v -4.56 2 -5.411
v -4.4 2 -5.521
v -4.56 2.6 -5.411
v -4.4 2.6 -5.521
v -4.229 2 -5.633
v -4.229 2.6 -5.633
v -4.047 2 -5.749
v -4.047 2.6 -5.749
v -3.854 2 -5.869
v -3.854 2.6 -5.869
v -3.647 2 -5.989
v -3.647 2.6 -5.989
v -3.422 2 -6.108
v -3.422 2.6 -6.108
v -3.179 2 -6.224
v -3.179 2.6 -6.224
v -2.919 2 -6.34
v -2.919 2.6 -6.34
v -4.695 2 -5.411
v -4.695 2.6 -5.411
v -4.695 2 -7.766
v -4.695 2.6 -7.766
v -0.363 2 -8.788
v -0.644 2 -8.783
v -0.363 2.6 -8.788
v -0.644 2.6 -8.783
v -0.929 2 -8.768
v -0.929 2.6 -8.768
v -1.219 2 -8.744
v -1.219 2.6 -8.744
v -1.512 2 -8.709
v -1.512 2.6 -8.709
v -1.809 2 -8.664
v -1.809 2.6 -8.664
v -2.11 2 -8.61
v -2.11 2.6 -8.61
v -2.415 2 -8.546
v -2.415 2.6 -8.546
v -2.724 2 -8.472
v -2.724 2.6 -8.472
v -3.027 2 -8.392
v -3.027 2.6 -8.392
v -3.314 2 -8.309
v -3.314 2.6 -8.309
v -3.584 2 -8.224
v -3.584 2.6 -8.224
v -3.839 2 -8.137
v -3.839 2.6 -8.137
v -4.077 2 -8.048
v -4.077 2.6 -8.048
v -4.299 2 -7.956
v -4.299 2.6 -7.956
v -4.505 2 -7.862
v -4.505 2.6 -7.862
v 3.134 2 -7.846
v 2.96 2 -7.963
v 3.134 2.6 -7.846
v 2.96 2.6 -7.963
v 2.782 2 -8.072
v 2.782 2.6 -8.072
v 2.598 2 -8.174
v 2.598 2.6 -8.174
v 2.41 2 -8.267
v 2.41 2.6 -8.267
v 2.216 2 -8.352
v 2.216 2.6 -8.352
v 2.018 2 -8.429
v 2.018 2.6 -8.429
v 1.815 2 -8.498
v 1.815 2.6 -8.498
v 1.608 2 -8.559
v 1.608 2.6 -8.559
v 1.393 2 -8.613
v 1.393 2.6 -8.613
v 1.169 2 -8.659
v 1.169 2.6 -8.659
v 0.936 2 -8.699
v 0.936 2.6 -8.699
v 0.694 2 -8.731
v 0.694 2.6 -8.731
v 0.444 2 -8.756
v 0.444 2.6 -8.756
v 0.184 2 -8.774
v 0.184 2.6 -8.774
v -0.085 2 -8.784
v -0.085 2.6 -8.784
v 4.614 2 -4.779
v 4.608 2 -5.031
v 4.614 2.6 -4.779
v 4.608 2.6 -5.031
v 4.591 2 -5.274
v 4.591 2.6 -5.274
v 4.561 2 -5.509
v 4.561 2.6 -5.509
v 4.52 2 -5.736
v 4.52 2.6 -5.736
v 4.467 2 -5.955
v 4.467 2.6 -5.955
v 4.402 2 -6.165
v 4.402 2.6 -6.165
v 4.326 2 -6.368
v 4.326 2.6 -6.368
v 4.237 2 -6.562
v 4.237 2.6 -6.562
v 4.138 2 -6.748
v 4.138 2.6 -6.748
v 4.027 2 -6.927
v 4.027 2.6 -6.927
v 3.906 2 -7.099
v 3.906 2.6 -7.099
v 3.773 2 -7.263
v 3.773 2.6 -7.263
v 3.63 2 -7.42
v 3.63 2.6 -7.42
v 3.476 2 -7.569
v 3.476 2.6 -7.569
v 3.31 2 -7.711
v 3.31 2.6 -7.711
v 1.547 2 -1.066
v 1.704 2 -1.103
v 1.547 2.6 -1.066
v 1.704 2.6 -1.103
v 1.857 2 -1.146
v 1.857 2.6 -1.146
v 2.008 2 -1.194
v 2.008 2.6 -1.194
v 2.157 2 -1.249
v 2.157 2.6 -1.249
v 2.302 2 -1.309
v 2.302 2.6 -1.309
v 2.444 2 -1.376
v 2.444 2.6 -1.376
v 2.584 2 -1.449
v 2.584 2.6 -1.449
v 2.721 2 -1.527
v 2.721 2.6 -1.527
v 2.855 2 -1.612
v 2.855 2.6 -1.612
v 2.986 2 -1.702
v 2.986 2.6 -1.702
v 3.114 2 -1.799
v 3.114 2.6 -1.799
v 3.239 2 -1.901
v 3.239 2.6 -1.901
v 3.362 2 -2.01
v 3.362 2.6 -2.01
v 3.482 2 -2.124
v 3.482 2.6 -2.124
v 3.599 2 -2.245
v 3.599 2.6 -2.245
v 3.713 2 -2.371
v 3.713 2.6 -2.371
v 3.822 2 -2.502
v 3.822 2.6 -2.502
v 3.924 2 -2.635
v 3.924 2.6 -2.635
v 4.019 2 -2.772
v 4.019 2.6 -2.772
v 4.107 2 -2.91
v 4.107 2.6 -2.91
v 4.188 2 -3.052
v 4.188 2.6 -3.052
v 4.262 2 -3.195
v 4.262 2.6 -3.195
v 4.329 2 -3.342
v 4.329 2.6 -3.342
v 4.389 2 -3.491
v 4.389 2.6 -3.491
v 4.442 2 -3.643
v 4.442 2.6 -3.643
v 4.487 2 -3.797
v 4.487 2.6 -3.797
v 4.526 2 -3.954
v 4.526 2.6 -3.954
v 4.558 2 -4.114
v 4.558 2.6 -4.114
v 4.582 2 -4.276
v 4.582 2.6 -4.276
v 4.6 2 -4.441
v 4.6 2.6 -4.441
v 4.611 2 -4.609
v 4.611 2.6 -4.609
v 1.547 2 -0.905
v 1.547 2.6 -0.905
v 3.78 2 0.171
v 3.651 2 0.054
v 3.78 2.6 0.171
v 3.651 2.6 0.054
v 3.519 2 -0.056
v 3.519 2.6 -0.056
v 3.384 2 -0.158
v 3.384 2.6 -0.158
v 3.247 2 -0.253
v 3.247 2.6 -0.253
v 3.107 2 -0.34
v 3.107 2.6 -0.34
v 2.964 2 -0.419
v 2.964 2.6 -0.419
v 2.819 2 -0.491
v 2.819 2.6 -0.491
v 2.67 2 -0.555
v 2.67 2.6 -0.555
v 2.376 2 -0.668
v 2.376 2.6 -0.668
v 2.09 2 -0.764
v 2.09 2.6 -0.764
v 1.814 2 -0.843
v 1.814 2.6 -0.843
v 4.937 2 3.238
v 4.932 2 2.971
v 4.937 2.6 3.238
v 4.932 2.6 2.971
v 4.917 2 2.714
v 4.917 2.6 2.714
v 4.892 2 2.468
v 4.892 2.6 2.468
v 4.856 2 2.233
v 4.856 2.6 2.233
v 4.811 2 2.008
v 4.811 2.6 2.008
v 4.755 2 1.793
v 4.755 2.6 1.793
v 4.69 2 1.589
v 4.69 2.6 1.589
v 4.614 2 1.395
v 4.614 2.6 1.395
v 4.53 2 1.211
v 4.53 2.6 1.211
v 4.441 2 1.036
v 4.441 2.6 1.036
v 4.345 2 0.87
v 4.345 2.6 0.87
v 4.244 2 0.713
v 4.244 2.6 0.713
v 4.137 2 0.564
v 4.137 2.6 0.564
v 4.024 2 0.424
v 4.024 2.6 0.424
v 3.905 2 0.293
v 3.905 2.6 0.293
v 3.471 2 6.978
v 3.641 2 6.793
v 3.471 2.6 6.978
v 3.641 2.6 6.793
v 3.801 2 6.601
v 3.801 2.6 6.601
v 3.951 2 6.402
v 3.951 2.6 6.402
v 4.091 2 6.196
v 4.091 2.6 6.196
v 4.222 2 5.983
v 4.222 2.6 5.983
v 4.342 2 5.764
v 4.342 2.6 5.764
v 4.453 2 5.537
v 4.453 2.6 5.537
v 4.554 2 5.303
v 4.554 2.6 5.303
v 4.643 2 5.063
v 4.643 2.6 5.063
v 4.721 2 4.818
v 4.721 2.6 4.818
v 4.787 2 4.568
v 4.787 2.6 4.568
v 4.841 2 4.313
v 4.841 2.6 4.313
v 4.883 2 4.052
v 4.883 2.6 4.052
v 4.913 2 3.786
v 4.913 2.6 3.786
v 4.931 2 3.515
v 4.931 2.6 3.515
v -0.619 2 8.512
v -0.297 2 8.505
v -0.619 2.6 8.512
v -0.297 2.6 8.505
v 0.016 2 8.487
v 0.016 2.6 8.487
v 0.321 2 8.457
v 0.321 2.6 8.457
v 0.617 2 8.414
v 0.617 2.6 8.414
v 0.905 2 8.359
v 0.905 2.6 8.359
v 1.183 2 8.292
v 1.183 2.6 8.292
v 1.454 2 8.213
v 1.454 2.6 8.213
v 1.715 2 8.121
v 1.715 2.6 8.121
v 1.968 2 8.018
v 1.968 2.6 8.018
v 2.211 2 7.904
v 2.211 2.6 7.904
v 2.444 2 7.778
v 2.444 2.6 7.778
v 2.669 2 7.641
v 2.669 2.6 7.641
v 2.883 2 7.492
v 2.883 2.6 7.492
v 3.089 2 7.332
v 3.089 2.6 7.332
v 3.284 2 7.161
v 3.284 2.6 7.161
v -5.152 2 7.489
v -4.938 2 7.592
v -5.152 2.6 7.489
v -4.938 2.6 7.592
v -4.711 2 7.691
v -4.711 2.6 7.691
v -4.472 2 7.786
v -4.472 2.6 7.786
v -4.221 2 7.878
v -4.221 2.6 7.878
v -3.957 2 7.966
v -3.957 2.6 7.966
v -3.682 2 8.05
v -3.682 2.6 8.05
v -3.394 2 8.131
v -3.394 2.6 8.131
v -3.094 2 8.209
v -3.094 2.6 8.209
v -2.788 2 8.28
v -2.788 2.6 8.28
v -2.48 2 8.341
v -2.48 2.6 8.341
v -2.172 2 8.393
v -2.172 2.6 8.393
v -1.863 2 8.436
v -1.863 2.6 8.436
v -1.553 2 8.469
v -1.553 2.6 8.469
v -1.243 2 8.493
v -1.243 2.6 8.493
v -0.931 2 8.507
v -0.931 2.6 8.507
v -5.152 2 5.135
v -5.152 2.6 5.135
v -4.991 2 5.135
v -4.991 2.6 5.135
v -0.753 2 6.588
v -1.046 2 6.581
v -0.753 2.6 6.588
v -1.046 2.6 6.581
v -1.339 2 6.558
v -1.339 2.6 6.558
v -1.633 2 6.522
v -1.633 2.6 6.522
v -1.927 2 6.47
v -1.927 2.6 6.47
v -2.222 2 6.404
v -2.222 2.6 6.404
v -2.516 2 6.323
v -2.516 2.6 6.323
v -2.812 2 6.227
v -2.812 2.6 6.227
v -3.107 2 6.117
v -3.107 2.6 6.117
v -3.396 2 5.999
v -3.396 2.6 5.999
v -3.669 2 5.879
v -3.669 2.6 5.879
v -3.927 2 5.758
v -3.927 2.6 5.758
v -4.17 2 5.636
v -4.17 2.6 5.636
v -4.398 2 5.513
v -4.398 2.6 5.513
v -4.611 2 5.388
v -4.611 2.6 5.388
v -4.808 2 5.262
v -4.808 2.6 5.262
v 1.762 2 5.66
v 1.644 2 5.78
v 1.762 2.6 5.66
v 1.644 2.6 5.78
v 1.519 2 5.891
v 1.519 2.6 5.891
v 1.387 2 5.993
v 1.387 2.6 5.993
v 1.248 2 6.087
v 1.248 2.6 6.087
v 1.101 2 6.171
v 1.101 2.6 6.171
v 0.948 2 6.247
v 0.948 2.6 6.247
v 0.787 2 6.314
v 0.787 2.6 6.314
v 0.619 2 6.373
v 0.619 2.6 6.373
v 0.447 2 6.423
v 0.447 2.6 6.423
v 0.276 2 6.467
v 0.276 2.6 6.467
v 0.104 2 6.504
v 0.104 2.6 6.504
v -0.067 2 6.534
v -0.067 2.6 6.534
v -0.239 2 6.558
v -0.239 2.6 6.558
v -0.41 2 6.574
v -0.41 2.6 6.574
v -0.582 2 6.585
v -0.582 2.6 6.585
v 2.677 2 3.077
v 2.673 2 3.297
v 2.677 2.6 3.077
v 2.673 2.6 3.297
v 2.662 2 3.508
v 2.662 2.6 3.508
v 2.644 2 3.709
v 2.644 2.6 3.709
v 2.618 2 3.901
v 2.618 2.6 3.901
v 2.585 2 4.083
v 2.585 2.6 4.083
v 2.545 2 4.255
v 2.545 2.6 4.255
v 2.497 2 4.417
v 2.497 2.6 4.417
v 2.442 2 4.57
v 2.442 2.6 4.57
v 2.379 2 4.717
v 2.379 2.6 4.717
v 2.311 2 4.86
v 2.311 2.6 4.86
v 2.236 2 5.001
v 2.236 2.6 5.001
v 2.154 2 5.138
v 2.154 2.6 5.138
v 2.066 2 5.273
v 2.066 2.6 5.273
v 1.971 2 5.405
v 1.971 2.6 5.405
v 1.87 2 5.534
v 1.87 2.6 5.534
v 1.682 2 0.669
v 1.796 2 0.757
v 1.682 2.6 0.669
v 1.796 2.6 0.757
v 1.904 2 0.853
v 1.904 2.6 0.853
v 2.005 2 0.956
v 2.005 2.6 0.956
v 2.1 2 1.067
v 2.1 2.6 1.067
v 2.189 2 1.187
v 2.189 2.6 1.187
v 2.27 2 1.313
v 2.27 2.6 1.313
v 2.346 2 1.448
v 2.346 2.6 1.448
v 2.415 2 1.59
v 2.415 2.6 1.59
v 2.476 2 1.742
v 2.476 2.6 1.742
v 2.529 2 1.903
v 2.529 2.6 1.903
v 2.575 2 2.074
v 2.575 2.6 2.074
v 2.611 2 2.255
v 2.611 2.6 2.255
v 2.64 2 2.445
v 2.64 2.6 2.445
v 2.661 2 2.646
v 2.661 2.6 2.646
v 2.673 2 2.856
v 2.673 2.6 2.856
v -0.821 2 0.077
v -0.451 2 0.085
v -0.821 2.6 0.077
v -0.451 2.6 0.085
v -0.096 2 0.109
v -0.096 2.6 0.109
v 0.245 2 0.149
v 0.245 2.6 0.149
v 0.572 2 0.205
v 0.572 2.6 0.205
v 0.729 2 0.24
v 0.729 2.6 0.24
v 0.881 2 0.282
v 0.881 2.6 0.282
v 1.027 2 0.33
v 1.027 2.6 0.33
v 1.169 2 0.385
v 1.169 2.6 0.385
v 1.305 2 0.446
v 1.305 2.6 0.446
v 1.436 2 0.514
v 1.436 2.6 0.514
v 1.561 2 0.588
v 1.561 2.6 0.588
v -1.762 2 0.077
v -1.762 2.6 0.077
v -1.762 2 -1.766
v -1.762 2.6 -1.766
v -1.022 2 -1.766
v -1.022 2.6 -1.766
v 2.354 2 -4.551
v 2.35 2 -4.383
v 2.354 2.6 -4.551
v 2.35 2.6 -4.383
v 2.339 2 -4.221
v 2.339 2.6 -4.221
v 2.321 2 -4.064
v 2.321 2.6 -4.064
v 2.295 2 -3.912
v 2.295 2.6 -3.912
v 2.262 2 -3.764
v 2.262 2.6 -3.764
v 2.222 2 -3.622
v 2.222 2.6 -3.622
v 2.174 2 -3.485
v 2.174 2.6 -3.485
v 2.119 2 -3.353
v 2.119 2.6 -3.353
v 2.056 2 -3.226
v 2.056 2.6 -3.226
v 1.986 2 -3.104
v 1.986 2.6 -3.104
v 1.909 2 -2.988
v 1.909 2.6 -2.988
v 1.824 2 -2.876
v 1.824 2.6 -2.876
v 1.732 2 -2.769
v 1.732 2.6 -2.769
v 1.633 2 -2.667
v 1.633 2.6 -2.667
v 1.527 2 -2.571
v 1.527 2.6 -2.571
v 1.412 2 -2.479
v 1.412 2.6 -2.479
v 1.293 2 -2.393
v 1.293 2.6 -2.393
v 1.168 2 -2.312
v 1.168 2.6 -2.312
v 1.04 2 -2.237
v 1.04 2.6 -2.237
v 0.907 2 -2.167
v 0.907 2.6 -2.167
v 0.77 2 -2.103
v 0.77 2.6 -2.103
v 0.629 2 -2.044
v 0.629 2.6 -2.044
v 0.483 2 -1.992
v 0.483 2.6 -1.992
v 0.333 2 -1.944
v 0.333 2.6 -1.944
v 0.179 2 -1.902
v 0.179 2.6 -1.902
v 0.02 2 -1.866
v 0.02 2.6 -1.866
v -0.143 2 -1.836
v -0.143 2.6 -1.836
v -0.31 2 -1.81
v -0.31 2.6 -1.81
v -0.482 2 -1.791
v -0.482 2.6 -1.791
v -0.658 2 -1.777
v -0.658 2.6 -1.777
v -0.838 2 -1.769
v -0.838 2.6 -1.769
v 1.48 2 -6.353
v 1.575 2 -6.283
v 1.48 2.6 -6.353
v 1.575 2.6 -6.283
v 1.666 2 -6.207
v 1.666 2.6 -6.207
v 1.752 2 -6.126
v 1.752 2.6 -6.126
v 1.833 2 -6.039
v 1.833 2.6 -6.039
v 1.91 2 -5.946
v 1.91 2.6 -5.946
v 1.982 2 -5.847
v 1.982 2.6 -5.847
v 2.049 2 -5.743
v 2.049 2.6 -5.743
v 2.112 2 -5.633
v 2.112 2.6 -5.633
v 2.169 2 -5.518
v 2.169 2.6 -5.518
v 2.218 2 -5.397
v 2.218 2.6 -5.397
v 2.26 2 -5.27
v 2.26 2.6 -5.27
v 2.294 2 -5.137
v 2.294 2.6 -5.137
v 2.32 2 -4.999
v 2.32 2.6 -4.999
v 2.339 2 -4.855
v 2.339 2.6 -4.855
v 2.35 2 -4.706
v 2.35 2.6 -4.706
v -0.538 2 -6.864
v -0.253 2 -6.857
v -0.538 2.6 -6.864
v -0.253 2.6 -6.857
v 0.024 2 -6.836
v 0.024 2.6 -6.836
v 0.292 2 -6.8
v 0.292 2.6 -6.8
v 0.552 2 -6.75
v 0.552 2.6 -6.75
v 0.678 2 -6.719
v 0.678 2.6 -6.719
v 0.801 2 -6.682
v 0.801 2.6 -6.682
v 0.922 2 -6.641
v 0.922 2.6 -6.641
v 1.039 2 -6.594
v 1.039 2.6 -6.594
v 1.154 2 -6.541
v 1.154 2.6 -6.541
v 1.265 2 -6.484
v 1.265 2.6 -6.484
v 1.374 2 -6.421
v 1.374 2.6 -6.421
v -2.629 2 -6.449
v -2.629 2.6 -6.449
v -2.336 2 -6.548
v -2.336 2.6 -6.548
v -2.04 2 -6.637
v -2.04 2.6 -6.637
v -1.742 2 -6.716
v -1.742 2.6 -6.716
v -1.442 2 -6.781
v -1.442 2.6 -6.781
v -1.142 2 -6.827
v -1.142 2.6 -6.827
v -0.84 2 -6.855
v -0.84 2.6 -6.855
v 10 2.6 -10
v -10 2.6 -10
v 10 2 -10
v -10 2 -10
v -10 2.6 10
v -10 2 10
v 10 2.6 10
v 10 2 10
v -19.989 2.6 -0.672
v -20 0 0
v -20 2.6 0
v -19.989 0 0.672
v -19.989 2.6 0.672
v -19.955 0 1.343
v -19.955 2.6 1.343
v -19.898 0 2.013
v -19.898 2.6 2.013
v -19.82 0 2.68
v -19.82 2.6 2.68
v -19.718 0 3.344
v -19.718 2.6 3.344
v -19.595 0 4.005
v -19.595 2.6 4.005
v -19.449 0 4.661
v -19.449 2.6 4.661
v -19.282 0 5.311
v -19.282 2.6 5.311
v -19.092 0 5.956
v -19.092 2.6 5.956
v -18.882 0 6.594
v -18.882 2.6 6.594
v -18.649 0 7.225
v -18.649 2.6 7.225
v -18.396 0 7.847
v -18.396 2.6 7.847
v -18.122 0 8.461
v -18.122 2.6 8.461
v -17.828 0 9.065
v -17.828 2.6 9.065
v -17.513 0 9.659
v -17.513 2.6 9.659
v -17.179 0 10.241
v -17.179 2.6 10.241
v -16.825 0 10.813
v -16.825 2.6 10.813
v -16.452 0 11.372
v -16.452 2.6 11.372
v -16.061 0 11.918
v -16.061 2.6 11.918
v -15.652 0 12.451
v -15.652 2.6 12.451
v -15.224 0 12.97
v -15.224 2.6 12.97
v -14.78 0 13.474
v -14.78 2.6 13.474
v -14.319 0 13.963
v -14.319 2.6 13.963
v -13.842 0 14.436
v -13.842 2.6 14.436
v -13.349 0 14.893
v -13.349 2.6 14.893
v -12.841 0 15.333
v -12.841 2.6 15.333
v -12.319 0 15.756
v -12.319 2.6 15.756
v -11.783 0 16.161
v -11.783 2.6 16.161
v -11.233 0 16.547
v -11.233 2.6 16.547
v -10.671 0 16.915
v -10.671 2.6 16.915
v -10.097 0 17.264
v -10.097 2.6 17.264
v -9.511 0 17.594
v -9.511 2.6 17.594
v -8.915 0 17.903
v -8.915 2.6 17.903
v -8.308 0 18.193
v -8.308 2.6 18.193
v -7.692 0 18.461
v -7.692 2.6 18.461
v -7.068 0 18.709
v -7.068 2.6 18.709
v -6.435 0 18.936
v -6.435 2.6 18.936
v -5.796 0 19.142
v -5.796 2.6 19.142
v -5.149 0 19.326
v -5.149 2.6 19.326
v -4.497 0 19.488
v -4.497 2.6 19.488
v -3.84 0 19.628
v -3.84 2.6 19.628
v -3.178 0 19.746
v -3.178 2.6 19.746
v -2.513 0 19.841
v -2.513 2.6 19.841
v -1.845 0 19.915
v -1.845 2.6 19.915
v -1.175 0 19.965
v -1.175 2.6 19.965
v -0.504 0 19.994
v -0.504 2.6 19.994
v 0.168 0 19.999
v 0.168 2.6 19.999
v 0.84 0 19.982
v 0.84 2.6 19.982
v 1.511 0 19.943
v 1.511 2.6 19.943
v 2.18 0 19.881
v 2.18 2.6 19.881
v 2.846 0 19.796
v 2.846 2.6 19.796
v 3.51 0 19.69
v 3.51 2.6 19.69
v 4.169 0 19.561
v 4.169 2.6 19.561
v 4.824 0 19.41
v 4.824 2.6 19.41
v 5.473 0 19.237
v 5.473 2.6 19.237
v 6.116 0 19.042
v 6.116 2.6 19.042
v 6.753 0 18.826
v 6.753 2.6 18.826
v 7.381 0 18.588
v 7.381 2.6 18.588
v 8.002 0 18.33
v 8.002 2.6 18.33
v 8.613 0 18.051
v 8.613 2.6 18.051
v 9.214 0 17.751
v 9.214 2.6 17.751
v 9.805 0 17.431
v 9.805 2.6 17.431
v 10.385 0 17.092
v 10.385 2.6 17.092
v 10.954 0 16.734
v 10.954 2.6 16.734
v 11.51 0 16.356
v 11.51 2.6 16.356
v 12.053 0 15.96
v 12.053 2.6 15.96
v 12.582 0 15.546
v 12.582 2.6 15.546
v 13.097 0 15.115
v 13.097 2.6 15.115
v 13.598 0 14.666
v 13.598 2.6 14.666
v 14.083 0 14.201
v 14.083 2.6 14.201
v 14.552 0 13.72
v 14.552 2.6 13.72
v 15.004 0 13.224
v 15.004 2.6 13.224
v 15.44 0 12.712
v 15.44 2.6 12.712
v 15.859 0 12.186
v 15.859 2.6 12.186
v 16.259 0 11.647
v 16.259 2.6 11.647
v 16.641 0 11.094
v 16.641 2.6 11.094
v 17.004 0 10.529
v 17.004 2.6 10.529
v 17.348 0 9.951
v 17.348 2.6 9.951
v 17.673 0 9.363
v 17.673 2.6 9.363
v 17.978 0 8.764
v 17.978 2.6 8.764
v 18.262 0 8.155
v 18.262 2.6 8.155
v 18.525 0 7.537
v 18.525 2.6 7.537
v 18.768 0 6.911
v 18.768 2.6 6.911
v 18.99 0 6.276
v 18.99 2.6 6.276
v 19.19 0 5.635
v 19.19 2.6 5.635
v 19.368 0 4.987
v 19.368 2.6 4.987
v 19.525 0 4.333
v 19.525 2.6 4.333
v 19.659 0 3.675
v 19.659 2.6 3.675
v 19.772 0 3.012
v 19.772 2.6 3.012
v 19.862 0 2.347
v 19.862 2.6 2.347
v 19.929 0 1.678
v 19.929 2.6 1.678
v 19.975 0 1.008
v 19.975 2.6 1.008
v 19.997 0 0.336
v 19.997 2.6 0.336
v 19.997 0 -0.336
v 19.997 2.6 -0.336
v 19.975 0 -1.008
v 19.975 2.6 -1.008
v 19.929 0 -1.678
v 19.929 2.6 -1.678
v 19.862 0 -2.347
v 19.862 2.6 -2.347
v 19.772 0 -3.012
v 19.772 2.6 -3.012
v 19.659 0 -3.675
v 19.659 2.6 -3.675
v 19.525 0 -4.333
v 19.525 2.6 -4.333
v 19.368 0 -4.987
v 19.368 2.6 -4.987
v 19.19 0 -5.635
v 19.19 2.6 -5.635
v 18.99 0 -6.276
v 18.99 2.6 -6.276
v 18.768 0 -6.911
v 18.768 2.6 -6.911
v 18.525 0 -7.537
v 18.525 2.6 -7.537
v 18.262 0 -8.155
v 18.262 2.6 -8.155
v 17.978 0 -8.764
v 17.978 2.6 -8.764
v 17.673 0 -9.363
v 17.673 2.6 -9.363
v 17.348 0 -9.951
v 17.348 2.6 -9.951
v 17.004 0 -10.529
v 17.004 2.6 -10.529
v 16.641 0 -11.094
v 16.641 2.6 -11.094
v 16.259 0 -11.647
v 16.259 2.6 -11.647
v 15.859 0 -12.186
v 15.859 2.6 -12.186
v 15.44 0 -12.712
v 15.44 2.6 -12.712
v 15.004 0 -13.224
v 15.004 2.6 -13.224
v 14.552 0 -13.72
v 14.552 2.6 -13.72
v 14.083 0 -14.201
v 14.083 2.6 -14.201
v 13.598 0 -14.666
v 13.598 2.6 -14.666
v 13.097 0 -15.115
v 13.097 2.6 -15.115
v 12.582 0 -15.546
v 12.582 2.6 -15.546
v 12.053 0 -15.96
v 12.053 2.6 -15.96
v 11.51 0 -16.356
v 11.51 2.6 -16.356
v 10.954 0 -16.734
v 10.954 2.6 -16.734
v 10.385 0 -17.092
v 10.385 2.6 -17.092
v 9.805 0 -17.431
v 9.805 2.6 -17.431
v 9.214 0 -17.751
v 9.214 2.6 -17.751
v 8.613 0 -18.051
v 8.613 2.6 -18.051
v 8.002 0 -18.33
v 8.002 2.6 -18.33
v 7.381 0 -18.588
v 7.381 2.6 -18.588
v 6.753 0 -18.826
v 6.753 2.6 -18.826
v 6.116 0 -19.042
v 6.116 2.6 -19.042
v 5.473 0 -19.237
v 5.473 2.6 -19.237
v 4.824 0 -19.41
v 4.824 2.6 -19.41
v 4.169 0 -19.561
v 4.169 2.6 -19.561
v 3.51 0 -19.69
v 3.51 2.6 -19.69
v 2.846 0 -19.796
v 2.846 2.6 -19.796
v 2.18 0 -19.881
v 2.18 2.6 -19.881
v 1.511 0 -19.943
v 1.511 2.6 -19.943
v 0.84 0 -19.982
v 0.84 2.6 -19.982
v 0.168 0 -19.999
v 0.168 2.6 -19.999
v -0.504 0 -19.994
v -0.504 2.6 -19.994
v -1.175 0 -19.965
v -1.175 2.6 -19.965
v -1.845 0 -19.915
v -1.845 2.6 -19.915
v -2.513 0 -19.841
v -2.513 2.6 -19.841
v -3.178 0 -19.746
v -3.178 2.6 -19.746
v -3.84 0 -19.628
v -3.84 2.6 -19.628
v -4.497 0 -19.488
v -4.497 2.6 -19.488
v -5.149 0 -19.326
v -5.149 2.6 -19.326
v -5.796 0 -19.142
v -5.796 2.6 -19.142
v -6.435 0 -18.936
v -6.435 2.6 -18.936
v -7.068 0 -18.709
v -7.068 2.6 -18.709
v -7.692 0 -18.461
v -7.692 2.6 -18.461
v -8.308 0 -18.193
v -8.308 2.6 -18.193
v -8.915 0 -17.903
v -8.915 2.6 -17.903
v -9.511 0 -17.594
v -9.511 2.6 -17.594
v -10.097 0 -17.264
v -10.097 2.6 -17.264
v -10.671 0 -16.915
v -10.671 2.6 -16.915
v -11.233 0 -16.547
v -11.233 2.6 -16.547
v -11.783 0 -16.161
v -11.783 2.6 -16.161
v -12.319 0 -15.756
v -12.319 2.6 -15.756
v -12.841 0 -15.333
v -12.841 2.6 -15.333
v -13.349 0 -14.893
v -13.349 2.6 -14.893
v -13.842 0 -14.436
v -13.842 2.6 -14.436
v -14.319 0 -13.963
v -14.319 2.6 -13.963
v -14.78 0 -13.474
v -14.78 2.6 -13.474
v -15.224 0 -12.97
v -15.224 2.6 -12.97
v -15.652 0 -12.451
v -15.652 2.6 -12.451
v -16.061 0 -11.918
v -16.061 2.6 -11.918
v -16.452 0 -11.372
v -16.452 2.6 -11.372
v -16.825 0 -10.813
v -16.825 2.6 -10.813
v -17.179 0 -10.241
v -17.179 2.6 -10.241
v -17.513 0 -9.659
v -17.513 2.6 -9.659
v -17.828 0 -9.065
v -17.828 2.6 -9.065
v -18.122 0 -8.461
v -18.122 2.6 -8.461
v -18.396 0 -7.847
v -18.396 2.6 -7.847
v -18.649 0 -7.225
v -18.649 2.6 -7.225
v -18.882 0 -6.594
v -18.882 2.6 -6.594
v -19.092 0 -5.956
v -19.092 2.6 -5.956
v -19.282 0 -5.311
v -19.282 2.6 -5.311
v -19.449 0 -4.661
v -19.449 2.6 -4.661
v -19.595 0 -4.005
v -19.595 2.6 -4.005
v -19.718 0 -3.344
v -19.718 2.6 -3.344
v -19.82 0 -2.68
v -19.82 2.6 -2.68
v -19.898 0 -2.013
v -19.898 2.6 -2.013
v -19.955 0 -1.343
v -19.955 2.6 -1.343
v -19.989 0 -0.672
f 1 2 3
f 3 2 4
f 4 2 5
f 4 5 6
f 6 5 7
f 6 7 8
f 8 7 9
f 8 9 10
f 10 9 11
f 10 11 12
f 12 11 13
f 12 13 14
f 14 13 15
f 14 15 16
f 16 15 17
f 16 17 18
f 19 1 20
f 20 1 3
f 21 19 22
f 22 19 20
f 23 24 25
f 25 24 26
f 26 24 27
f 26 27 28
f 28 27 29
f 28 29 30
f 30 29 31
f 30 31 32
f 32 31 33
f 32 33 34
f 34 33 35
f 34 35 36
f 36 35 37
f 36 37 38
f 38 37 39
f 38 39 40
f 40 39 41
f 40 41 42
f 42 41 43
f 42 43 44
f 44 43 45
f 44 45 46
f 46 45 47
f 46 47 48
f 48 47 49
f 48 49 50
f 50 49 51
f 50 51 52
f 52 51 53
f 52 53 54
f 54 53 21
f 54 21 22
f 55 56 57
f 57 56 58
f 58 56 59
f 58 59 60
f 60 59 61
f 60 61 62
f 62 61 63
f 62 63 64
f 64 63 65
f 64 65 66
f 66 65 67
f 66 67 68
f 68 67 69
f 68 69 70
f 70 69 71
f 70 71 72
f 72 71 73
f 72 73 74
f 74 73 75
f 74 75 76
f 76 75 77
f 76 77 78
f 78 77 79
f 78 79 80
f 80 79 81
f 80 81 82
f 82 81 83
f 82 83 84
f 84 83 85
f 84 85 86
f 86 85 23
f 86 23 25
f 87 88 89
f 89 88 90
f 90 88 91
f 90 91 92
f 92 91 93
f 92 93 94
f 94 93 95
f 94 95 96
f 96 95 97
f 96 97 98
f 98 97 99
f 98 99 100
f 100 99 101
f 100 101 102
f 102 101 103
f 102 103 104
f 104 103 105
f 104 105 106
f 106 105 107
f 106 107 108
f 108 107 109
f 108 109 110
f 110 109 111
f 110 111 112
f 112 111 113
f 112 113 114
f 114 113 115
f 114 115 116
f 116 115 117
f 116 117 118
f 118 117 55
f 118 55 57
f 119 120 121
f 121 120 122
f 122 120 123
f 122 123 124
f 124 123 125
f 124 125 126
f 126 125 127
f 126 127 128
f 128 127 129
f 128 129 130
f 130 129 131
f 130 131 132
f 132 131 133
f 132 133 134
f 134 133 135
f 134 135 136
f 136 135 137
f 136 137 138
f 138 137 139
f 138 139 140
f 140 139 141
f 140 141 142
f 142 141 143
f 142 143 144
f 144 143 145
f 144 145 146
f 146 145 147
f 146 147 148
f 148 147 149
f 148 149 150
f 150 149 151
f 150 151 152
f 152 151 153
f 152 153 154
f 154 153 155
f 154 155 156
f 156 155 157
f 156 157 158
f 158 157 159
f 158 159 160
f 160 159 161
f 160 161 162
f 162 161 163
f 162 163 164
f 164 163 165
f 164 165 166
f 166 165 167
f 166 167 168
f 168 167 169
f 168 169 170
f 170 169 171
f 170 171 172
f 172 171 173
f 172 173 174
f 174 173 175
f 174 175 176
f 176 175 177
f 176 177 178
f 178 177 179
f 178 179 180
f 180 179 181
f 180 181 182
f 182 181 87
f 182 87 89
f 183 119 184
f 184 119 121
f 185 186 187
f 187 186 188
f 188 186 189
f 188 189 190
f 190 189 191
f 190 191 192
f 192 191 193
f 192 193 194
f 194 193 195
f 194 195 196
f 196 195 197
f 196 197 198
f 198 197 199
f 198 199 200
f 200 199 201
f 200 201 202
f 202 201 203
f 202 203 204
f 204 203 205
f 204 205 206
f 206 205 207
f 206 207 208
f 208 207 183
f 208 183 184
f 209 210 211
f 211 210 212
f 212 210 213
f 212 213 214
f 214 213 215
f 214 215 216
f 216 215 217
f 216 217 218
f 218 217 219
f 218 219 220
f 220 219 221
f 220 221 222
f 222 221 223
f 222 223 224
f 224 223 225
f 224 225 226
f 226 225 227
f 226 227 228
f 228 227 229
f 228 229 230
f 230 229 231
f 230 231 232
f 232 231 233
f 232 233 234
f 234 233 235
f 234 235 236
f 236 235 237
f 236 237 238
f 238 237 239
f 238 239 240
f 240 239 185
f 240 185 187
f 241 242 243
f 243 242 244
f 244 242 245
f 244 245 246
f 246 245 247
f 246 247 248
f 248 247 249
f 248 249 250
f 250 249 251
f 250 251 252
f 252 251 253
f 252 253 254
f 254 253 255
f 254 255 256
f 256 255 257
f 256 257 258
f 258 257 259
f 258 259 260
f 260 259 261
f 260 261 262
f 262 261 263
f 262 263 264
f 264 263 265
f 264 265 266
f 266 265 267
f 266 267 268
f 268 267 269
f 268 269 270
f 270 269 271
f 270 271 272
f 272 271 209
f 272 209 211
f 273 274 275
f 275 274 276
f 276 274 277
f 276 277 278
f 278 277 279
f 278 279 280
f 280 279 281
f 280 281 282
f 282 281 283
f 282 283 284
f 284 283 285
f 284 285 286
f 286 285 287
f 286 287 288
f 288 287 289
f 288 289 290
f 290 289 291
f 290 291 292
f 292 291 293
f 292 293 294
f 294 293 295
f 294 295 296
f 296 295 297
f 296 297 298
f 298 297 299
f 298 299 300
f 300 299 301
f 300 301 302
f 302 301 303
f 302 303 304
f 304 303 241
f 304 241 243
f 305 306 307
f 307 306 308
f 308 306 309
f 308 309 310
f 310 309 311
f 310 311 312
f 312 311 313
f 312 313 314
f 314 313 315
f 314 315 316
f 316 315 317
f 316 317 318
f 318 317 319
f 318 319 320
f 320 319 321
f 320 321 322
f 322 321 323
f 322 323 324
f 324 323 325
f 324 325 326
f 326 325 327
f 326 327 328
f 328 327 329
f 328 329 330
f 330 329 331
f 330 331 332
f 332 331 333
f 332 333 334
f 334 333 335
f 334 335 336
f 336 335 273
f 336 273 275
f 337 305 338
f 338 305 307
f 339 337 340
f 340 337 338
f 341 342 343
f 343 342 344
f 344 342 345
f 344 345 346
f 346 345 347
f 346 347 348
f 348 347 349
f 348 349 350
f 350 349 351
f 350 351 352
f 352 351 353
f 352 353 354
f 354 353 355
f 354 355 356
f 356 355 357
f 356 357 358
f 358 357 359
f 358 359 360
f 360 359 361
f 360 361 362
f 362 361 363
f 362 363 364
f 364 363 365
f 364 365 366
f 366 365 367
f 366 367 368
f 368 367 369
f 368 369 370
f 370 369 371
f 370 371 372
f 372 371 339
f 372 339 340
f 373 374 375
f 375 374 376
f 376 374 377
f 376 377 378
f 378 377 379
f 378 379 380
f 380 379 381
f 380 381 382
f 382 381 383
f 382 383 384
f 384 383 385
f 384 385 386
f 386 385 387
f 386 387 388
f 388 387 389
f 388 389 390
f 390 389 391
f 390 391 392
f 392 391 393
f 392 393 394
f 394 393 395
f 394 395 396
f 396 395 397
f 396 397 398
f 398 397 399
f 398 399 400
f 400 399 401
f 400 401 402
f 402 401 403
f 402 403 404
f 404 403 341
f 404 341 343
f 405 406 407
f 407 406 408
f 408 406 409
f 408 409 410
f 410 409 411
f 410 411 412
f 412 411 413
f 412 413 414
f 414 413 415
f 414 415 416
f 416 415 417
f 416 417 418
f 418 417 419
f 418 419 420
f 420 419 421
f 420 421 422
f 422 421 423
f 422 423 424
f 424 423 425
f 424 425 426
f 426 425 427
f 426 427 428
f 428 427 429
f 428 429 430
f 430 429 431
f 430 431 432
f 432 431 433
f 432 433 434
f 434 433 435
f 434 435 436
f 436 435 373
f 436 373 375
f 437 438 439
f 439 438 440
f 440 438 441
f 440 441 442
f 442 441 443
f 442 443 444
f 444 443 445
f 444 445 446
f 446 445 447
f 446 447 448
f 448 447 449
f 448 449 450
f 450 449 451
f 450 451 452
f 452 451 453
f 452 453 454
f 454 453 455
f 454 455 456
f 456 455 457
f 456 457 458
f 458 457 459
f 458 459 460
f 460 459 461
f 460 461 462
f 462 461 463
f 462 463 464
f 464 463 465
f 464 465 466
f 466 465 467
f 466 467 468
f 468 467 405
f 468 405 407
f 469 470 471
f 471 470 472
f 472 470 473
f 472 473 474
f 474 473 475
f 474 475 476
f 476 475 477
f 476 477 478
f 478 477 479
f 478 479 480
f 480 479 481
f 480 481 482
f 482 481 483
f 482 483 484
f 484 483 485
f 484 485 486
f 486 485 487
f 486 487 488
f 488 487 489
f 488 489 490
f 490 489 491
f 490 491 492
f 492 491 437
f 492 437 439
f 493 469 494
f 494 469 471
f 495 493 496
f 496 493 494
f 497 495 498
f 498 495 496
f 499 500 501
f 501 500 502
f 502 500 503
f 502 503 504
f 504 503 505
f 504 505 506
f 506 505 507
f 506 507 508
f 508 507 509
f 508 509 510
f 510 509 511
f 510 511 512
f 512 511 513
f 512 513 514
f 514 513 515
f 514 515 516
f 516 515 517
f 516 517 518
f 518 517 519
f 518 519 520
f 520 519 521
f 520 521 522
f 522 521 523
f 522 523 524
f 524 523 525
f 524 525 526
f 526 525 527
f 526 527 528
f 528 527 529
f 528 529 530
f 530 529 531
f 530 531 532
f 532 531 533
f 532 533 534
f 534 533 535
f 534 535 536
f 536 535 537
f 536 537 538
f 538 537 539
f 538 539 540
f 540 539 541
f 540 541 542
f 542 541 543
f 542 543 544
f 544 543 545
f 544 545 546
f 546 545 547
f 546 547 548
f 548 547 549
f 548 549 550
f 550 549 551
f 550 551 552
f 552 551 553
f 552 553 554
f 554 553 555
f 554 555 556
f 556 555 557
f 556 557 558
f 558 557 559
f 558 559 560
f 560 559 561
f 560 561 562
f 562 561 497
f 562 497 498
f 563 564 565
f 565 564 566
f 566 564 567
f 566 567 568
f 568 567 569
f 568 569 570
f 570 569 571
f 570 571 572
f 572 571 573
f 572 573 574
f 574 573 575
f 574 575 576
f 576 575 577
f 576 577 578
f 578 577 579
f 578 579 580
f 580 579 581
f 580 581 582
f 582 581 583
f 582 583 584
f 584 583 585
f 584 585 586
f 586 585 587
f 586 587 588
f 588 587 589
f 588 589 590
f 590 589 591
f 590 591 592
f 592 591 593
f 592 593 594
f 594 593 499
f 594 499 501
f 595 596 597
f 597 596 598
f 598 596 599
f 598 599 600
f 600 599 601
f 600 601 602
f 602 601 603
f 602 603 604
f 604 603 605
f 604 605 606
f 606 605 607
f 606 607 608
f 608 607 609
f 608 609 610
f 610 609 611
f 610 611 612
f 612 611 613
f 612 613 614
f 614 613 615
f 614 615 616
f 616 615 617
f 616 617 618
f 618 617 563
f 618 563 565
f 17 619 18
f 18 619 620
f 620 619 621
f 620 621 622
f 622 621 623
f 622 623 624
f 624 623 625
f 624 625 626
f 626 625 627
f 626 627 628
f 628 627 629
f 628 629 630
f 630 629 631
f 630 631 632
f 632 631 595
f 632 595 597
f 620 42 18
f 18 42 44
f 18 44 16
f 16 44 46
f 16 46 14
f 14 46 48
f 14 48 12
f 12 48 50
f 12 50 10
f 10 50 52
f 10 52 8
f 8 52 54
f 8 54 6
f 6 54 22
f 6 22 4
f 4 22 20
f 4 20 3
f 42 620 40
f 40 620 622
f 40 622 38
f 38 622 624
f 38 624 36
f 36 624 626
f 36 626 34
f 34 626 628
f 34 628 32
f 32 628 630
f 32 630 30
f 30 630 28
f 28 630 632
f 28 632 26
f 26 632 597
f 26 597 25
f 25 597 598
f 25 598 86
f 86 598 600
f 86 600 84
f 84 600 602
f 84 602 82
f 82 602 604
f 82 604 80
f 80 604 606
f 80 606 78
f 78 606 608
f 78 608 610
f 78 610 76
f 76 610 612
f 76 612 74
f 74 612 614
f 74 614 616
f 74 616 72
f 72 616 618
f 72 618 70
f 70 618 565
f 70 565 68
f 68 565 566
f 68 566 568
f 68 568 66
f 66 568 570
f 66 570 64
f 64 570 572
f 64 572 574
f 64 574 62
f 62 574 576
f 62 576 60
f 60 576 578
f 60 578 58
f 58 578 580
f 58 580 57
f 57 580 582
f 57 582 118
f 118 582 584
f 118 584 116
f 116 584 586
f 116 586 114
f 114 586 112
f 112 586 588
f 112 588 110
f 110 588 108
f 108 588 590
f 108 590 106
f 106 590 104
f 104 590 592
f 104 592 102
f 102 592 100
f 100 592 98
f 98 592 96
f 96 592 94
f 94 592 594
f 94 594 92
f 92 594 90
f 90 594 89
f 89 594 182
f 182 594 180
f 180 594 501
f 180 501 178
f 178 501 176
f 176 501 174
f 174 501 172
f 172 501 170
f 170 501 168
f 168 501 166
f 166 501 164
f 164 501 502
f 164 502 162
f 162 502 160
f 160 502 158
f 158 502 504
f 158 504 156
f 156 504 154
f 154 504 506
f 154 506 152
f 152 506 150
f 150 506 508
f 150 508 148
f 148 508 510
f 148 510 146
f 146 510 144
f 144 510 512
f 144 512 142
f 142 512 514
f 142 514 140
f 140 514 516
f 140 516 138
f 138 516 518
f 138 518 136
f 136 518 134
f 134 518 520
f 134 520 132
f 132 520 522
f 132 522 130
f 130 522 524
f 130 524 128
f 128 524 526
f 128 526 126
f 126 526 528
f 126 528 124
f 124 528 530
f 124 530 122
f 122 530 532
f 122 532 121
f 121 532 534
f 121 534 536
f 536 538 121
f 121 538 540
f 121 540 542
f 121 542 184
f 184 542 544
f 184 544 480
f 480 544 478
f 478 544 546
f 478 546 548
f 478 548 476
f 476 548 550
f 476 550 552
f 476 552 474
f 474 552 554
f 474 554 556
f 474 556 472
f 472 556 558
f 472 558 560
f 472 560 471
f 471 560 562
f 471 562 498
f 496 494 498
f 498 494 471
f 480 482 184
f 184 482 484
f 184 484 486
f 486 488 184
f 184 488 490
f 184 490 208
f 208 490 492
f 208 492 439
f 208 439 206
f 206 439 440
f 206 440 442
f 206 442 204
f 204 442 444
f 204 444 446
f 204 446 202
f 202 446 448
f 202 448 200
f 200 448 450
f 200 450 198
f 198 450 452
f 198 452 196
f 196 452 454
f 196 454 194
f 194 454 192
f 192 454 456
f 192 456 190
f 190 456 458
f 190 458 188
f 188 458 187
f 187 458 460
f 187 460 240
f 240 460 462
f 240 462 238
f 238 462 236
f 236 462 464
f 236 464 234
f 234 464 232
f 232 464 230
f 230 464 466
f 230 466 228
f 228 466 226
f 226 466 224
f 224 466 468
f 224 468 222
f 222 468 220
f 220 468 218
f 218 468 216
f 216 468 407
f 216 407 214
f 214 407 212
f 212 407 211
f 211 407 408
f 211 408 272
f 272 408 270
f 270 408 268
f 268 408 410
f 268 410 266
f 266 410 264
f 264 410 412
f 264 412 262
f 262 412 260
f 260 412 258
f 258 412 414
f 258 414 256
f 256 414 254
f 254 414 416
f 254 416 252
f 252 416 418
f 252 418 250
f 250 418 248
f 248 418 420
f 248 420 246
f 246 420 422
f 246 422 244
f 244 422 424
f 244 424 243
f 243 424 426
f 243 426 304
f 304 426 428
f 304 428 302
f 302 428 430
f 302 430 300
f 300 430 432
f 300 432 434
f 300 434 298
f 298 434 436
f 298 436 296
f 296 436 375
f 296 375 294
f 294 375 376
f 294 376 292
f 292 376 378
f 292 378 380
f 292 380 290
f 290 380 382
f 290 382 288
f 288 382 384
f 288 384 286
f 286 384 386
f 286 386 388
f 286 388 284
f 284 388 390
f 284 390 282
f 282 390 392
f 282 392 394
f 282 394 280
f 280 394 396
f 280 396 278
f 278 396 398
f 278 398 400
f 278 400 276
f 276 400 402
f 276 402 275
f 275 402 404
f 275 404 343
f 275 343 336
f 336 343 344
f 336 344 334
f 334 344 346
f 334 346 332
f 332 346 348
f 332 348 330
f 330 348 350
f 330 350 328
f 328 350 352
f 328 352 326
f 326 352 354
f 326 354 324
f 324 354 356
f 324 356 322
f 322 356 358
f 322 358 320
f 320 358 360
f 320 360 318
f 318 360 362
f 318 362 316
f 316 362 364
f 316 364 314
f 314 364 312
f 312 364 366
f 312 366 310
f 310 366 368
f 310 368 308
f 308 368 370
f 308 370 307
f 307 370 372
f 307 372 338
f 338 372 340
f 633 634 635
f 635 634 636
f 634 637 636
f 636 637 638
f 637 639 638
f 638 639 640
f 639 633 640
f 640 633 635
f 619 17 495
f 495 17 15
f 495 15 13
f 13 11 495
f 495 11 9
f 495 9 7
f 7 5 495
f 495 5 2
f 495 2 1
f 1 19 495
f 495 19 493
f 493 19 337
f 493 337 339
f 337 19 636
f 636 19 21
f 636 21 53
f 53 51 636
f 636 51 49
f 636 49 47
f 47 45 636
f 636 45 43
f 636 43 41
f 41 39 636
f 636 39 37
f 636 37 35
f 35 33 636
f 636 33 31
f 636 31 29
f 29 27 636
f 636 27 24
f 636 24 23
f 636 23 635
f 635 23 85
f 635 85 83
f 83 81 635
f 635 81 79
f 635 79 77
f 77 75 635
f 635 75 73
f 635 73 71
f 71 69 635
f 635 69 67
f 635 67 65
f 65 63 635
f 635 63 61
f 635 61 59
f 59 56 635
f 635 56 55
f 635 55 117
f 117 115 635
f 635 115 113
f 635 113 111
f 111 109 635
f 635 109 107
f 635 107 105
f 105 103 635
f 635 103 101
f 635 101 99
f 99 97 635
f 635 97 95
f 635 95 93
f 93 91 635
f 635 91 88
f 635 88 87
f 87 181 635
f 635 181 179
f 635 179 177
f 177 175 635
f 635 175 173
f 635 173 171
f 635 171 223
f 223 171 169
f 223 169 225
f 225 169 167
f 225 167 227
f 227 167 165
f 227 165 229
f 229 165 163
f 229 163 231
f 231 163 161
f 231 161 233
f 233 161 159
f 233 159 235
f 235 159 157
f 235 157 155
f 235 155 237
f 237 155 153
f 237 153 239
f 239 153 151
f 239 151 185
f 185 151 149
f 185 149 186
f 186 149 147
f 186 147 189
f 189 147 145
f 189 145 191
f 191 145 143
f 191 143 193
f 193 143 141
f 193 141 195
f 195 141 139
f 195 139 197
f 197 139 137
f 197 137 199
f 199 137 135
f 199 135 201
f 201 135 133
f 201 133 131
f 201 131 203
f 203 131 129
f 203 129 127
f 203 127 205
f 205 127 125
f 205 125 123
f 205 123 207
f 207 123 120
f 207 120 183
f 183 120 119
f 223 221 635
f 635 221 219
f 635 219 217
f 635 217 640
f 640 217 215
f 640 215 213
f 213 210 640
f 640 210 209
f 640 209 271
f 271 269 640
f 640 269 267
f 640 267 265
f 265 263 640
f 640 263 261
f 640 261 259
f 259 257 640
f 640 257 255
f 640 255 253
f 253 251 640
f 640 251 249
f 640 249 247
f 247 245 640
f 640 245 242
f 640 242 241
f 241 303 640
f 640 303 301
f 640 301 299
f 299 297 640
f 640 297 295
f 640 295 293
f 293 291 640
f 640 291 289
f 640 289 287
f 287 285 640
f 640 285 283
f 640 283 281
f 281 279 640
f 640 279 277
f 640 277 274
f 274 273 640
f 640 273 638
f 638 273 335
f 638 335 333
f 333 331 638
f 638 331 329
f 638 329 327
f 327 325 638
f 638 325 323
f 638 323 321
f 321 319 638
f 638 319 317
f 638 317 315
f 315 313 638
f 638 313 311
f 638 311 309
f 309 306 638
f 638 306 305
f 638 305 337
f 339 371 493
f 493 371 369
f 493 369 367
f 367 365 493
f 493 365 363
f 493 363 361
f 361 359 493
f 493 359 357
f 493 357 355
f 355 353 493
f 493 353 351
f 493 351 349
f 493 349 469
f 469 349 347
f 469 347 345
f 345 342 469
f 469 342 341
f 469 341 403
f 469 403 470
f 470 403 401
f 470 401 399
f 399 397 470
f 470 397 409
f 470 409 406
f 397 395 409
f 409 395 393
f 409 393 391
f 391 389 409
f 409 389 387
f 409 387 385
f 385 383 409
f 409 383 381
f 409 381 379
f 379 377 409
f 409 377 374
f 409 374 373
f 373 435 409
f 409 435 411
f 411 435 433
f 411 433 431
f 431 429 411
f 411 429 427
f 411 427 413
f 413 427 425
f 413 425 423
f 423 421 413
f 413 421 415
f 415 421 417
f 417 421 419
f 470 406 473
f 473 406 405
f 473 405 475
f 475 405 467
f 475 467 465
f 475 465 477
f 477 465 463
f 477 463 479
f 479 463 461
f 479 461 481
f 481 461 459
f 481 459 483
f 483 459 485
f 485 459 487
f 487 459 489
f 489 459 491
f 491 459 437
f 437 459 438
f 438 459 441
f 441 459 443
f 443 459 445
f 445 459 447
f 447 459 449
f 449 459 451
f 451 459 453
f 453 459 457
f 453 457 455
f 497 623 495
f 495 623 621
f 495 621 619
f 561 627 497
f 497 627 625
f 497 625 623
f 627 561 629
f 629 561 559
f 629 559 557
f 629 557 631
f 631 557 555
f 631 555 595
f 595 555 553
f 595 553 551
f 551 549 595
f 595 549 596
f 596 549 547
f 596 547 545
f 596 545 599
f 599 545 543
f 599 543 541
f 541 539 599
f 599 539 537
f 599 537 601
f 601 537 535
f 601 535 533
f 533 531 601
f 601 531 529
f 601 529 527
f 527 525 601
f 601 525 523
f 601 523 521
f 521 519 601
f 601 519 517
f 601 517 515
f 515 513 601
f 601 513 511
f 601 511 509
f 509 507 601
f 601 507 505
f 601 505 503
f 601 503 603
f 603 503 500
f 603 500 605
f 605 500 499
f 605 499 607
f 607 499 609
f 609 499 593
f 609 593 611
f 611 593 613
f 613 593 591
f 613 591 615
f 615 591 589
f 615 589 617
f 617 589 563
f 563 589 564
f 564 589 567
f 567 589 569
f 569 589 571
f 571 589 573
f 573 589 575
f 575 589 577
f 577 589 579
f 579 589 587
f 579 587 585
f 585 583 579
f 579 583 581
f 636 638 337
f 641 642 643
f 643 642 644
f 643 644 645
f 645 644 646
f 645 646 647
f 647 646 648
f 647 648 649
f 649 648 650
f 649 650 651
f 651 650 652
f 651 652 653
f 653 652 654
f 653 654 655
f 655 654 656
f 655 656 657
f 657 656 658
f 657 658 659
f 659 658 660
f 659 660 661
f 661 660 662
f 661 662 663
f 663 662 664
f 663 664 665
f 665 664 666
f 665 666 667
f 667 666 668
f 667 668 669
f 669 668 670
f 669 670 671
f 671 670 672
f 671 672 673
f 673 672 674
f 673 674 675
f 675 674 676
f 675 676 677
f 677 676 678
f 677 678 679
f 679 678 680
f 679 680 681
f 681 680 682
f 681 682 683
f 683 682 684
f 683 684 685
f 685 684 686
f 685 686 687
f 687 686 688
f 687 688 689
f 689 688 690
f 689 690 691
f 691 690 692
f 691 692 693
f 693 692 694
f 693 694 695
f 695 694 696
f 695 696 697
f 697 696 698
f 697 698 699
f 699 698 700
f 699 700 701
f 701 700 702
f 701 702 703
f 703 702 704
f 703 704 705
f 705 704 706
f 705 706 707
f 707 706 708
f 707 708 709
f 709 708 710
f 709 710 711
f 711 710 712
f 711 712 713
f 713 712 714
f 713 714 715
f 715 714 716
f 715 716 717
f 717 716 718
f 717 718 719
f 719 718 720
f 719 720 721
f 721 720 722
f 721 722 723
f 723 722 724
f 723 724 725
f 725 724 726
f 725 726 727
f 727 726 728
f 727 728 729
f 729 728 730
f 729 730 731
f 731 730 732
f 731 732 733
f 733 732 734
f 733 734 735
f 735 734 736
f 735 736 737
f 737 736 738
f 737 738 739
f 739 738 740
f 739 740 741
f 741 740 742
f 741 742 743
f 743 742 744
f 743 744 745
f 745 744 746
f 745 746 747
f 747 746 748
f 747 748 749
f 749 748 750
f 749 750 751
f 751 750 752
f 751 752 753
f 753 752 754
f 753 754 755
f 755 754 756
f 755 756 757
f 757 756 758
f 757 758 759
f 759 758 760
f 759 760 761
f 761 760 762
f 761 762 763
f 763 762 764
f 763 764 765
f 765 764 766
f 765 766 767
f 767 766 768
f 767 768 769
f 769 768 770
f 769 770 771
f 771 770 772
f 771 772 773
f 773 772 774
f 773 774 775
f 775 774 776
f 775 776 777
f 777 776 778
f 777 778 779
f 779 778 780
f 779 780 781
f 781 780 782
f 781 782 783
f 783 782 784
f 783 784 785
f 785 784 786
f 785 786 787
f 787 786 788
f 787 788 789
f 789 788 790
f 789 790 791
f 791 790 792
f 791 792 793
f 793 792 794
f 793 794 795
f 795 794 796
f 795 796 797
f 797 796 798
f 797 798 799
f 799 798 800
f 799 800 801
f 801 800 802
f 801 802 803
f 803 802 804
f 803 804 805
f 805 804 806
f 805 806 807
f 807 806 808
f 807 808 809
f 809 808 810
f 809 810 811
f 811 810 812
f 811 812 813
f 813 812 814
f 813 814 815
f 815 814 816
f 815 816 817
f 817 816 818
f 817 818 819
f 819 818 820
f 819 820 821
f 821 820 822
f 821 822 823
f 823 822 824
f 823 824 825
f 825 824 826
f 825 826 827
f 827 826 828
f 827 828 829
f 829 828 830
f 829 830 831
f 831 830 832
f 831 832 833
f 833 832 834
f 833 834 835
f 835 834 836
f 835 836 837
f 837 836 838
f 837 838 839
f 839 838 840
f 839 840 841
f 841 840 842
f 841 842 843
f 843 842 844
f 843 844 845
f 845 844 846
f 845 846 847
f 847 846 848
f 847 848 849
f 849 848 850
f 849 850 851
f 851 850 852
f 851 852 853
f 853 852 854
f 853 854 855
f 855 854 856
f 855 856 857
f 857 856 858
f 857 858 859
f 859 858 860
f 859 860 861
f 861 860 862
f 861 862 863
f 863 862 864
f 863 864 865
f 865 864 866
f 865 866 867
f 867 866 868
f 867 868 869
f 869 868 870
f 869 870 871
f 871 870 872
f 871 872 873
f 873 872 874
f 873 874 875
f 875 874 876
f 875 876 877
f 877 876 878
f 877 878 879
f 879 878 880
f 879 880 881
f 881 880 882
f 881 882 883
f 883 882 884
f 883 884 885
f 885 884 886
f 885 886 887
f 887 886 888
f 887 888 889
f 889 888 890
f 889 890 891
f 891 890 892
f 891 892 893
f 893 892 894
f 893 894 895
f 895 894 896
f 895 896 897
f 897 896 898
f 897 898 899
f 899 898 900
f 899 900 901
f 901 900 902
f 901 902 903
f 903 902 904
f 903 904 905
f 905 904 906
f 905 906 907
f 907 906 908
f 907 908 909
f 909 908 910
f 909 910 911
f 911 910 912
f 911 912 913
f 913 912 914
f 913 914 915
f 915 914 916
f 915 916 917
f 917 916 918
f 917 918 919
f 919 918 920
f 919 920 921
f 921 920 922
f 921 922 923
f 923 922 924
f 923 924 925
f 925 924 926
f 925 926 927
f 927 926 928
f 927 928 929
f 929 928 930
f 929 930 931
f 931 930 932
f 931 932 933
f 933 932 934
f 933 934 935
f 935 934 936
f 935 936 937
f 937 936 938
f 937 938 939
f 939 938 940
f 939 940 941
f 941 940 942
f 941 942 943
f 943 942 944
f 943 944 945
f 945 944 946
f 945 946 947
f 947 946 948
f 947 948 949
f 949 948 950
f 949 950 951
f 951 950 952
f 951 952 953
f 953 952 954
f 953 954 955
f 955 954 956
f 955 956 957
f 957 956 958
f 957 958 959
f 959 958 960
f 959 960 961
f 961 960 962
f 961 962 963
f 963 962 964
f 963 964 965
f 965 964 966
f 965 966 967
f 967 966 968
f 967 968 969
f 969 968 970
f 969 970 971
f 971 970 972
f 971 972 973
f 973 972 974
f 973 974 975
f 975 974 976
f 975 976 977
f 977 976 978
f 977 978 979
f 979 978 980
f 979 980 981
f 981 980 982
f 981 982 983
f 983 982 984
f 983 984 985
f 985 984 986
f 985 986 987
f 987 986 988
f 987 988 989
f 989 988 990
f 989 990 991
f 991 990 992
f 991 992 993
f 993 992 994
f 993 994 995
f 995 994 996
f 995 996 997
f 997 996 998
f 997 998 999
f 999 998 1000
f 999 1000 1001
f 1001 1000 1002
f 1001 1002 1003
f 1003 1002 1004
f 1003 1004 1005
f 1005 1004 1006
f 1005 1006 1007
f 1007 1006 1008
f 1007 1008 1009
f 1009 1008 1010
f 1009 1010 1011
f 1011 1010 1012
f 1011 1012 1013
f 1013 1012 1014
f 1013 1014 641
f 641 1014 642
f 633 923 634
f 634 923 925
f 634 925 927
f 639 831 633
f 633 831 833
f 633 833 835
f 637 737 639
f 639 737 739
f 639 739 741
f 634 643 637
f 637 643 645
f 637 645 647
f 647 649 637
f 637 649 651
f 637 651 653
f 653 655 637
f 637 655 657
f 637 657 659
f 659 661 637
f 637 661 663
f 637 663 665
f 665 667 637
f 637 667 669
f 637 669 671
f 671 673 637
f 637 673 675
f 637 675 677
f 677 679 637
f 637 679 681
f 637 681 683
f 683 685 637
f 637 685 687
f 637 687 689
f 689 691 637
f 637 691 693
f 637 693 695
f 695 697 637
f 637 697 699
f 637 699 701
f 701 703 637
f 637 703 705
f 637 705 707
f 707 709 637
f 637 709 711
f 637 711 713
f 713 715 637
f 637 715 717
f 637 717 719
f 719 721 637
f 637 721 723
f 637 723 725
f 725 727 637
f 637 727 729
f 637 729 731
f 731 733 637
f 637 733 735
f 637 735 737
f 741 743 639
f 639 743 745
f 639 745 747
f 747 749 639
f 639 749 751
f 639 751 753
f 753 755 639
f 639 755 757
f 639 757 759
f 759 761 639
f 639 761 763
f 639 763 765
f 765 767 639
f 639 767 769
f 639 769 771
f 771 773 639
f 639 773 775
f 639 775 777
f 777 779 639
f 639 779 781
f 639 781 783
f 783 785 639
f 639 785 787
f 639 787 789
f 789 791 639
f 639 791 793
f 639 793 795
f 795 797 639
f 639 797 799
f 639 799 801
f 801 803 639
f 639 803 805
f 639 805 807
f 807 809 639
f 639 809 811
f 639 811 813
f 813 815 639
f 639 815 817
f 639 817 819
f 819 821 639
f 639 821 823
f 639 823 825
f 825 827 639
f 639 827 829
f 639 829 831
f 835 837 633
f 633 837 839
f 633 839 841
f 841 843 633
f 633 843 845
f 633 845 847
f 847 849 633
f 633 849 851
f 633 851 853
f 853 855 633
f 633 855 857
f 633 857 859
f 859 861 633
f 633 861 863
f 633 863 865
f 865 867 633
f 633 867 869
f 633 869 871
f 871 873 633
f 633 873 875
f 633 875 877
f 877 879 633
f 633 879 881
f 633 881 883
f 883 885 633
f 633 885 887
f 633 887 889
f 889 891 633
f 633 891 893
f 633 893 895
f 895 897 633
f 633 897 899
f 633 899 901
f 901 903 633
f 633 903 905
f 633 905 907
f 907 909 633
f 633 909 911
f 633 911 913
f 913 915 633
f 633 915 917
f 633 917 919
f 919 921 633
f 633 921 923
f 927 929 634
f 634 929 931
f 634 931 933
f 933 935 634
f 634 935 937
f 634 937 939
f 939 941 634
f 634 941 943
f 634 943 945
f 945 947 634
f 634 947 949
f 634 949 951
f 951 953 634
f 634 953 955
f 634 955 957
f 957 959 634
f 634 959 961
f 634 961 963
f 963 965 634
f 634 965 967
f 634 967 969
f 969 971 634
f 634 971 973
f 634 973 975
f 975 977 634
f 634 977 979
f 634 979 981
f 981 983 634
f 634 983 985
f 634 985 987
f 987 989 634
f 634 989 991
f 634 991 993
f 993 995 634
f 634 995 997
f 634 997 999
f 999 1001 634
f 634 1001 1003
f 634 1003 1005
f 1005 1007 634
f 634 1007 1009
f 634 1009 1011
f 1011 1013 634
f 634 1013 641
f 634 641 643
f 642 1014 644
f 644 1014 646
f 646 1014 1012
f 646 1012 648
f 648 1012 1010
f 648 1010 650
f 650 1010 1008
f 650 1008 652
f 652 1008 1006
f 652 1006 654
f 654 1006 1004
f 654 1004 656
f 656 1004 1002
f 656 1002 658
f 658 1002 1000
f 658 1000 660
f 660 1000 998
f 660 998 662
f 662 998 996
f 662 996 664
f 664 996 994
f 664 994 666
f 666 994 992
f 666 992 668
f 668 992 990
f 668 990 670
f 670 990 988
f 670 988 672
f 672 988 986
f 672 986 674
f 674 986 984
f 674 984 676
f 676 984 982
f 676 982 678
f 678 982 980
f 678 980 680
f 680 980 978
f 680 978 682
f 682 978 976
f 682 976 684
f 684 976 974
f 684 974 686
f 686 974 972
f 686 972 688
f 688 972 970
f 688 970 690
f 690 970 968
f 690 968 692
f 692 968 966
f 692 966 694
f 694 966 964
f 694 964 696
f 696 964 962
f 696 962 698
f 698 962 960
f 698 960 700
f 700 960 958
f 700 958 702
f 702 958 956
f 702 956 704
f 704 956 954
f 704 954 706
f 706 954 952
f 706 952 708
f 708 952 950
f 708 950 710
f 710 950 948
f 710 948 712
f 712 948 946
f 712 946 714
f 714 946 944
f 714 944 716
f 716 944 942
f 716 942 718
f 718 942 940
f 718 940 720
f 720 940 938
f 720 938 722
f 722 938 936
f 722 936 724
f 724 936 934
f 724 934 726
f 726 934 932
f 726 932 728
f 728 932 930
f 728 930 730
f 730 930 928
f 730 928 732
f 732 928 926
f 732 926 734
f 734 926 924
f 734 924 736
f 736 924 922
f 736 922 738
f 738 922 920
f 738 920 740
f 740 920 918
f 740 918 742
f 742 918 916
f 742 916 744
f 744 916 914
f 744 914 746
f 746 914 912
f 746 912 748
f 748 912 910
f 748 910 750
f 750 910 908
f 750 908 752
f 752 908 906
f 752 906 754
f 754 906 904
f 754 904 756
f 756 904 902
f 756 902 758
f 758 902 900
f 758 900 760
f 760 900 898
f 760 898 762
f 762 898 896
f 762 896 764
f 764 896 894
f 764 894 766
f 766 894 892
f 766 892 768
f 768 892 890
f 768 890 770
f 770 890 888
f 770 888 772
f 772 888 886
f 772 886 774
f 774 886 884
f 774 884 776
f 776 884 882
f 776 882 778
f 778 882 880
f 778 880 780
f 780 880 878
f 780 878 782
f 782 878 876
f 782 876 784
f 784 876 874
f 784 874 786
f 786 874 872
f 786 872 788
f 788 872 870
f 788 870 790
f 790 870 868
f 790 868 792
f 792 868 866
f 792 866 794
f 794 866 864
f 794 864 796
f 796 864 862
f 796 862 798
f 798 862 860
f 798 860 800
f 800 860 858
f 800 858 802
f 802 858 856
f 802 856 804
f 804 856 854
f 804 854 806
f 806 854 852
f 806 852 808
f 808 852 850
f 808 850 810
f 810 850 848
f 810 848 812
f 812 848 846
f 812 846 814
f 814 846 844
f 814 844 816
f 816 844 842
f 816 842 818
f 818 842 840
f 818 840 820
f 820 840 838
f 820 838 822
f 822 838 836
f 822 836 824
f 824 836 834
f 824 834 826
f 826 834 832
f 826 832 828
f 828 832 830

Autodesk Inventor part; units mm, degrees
ref_plane "YZ Plane" through (0, 0, 0) normal (1, 0, 0) x (0, 1, 0)
ref_plane "XZ Plane" through (0, 0, 0) normal (0, 1, 0) x (-1, 0, 0)
ref_plane "XY Plane" through (0, 0, 0) normal (0, 0, 1) x (1, 0, 0)
sketch "Sketch1" plane through (0, 0, 0) normal (0, 1, 0) x (-1, 0, 0)
  circle A0 centre (0, 0) radius 20
  dimension "d0" = 40
extrude "Extrusion1" add sketch "Sketch1" along normal blind 2.6
sketch "Sketch2" plane through (0, 2.6, 0) normal (0, 1, 0) x (1, 0, 0)
  line L0 (-10, -10) -> (-10, 10)
  line L1 (-10, 10) -> (10, 10)
  line L2 (10, 10) -> (10, -10)
  line L3 (10, -10) -> (-10, -10)
  line L4 (-10, -10) -> (10, 10) construction
  line L5 (-10, 10) -> (10, -10) construction
  point P0 (0, 0)
  dimension "d3" = 20
  dimension "d4" = 20
extrude "Extrusion2" cut sketch "Sketch2" against normal blind 0.6
sketch "Sketch3" plane through (0, 2, 0) normal (0, 1, 0) x (1, 0, 0)
  line L0 (-6.2284, 8.788) -> (6.2284, 8.788) construction
  line L1 (6.2284, 8.788) -> (6.2284, -8.5115) construction
  line L2 (6.2284, -8.5115) -> (-6.2284, -8.5115) construction
  line L3 (-6.2284, -8.5115) -> (-6.2284, 8.788) construction
  spline S0 degree 2 poles (-0.5381, 6.8643) (-1.1434, 6.8643) (-2.3407, 6.5684) (-2.9191, 6.3397) knots 0 0 0 1 2 2 2
  spline S1 degree 2 poles (-2.9191, 6.3397) (-3.4572, 6.111) (-4.2509, 5.6267) (-4.5603, 5.4115) knots 0 0 0 1 2 2 2
  line L4 (-4.5603, 5.4115) -> (-4.6948, 5.4115)
  line L5 (-4.6948, 5.4115) -> (-4.6948, 7.7656)
  spline S2 degree 2 poles (-4.6948, 7.7656) (-3.9684, 8.1557) (-1.4797, 8.788) (-0.3632, 8.788) knots 0 0 0 1 2 2 2
  spline S3 degree 2 poles (-0.3632, 8.788) (0.7668, 8.788) (2.4483, 8.3306) (3.1344, 7.8463) knots 0 0 0 1 2 2 2
  spline S4 degree 2 poles (3.1344, 7.8463) (3.8608, 7.3217) (4.6141, 5.8016) (4.6141, 4.7792) knots 0 0 0 1 2 2 2
  spline S5 degree 2 poles (4.6141, 4.7792) (4.6141, 3.4071) (2.8115, 1.3355) (1.547, 1.0664) knots 0 0 0 1 2 2 2
  line L6 (1.547, 1.0664) -> (1.547, 0.905)
  spline S6 degree 2 poles (1.547, 0.905) (2.0716, 0.7974) (3.2689, 0.3131) (3.7801, -0.1712) knots 0 0 0 1 2 2 2
  spline S7 degree 2 poles (3.7801, -0.1712) (4.2912, -0.642) (4.937, -2.1487) (4.937, -3.2383) knots 0 0 0 1 2 2 2
  spline S8 degree 2 poles (4.937, -3.2383) (4.937, -4.3548) (4.1702, -6.2516) (3.4707, -6.978) knots 0 0 0 1 2 2 2
  spline S9 degree 2 poles (3.4707, -6.978) (2.7442, -7.7313) (0.6861, -8.5115) (-0.6188, -8.5115) knots 0 0 0 1 2 2 2
  spline S10 degree 2 poles (-0.6188, -8.5115) (-1.8699, -8.5115) (-4.3182, -7.9062) (-5.1522, -7.4892) knots 0 0 0 1 2 2 2
  line L7 (-5.1522, -7.4892) -> (-5.1522, -5.135)
  line L8 (-5.1522, -5.135) -> (-4.9908, -5.135)
  spline S11 degree 2 poles (-4.9908, -5.135) (-4.2912, -5.6462) (-1.9237, -6.5879) (-0.7533, -6.5879) knots 0 0 0 1 2 2 2
  spline S12 degree 2 poles (-0.7533, -6.5879) (-0.0673, -6.5879) (1.3049, -6.1574) (1.7622, -5.6597) knots 0 0 0 1 2 2 2
  spline S13 degree 2 poles (1.7622, -5.6597) (2.2062, -5.162) (2.677, -3.9782) (2.677, -3.0769) knots 0 0 0 1 2 2 2
  spline S14 degree 2 poles (2.677, -3.0769) (2.677, -2.1756) (2.1524, -1.0052) (1.6815, -0.6689) knots 0 0 0 1 2 2 2
  spline S15 degree 2 poles (1.6815, -0.6689) (1.2107, -0.3326) (-0.0673, -0.077) (-0.8206, -0.077) knots 0 0 0 1 2 2 2
  line L9 (-0.8206, -0.077) -> (-1.7622, -0.077)
  line L10 (-1.7622, -0.077) -> (-1.7622, 1.7659)
  line L11 (-1.7622, 1.7659) -> (-1.0224, 1.7659)
  spline S16 degree 2 poles (-1.0224, 1.7659) (0.4708, 1.7659) (2.3541, 3.1919) (2.3541, 4.5505) knots 0 0 0 1 2 2 2
  spline S17 degree 2 poles (2.3541, 4.5505) (2.3541, 5.1828) (1.8699, 6.0841) (1.4797, 6.3531) knots 0 0 0 1 2 2 2
  spline S18 degree 2 poles (1.4797, 6.3531) (1.0627, 6.6356) (0.0404, 6.8643) (-0.5381, 6.8643) knots 0 0 0 1 2 2 2
  point P0 (0, 0)
extrude "Extrusion3" add sketch "Sketch3" along normal blind 0.6
properties part number "TopMarker3"
